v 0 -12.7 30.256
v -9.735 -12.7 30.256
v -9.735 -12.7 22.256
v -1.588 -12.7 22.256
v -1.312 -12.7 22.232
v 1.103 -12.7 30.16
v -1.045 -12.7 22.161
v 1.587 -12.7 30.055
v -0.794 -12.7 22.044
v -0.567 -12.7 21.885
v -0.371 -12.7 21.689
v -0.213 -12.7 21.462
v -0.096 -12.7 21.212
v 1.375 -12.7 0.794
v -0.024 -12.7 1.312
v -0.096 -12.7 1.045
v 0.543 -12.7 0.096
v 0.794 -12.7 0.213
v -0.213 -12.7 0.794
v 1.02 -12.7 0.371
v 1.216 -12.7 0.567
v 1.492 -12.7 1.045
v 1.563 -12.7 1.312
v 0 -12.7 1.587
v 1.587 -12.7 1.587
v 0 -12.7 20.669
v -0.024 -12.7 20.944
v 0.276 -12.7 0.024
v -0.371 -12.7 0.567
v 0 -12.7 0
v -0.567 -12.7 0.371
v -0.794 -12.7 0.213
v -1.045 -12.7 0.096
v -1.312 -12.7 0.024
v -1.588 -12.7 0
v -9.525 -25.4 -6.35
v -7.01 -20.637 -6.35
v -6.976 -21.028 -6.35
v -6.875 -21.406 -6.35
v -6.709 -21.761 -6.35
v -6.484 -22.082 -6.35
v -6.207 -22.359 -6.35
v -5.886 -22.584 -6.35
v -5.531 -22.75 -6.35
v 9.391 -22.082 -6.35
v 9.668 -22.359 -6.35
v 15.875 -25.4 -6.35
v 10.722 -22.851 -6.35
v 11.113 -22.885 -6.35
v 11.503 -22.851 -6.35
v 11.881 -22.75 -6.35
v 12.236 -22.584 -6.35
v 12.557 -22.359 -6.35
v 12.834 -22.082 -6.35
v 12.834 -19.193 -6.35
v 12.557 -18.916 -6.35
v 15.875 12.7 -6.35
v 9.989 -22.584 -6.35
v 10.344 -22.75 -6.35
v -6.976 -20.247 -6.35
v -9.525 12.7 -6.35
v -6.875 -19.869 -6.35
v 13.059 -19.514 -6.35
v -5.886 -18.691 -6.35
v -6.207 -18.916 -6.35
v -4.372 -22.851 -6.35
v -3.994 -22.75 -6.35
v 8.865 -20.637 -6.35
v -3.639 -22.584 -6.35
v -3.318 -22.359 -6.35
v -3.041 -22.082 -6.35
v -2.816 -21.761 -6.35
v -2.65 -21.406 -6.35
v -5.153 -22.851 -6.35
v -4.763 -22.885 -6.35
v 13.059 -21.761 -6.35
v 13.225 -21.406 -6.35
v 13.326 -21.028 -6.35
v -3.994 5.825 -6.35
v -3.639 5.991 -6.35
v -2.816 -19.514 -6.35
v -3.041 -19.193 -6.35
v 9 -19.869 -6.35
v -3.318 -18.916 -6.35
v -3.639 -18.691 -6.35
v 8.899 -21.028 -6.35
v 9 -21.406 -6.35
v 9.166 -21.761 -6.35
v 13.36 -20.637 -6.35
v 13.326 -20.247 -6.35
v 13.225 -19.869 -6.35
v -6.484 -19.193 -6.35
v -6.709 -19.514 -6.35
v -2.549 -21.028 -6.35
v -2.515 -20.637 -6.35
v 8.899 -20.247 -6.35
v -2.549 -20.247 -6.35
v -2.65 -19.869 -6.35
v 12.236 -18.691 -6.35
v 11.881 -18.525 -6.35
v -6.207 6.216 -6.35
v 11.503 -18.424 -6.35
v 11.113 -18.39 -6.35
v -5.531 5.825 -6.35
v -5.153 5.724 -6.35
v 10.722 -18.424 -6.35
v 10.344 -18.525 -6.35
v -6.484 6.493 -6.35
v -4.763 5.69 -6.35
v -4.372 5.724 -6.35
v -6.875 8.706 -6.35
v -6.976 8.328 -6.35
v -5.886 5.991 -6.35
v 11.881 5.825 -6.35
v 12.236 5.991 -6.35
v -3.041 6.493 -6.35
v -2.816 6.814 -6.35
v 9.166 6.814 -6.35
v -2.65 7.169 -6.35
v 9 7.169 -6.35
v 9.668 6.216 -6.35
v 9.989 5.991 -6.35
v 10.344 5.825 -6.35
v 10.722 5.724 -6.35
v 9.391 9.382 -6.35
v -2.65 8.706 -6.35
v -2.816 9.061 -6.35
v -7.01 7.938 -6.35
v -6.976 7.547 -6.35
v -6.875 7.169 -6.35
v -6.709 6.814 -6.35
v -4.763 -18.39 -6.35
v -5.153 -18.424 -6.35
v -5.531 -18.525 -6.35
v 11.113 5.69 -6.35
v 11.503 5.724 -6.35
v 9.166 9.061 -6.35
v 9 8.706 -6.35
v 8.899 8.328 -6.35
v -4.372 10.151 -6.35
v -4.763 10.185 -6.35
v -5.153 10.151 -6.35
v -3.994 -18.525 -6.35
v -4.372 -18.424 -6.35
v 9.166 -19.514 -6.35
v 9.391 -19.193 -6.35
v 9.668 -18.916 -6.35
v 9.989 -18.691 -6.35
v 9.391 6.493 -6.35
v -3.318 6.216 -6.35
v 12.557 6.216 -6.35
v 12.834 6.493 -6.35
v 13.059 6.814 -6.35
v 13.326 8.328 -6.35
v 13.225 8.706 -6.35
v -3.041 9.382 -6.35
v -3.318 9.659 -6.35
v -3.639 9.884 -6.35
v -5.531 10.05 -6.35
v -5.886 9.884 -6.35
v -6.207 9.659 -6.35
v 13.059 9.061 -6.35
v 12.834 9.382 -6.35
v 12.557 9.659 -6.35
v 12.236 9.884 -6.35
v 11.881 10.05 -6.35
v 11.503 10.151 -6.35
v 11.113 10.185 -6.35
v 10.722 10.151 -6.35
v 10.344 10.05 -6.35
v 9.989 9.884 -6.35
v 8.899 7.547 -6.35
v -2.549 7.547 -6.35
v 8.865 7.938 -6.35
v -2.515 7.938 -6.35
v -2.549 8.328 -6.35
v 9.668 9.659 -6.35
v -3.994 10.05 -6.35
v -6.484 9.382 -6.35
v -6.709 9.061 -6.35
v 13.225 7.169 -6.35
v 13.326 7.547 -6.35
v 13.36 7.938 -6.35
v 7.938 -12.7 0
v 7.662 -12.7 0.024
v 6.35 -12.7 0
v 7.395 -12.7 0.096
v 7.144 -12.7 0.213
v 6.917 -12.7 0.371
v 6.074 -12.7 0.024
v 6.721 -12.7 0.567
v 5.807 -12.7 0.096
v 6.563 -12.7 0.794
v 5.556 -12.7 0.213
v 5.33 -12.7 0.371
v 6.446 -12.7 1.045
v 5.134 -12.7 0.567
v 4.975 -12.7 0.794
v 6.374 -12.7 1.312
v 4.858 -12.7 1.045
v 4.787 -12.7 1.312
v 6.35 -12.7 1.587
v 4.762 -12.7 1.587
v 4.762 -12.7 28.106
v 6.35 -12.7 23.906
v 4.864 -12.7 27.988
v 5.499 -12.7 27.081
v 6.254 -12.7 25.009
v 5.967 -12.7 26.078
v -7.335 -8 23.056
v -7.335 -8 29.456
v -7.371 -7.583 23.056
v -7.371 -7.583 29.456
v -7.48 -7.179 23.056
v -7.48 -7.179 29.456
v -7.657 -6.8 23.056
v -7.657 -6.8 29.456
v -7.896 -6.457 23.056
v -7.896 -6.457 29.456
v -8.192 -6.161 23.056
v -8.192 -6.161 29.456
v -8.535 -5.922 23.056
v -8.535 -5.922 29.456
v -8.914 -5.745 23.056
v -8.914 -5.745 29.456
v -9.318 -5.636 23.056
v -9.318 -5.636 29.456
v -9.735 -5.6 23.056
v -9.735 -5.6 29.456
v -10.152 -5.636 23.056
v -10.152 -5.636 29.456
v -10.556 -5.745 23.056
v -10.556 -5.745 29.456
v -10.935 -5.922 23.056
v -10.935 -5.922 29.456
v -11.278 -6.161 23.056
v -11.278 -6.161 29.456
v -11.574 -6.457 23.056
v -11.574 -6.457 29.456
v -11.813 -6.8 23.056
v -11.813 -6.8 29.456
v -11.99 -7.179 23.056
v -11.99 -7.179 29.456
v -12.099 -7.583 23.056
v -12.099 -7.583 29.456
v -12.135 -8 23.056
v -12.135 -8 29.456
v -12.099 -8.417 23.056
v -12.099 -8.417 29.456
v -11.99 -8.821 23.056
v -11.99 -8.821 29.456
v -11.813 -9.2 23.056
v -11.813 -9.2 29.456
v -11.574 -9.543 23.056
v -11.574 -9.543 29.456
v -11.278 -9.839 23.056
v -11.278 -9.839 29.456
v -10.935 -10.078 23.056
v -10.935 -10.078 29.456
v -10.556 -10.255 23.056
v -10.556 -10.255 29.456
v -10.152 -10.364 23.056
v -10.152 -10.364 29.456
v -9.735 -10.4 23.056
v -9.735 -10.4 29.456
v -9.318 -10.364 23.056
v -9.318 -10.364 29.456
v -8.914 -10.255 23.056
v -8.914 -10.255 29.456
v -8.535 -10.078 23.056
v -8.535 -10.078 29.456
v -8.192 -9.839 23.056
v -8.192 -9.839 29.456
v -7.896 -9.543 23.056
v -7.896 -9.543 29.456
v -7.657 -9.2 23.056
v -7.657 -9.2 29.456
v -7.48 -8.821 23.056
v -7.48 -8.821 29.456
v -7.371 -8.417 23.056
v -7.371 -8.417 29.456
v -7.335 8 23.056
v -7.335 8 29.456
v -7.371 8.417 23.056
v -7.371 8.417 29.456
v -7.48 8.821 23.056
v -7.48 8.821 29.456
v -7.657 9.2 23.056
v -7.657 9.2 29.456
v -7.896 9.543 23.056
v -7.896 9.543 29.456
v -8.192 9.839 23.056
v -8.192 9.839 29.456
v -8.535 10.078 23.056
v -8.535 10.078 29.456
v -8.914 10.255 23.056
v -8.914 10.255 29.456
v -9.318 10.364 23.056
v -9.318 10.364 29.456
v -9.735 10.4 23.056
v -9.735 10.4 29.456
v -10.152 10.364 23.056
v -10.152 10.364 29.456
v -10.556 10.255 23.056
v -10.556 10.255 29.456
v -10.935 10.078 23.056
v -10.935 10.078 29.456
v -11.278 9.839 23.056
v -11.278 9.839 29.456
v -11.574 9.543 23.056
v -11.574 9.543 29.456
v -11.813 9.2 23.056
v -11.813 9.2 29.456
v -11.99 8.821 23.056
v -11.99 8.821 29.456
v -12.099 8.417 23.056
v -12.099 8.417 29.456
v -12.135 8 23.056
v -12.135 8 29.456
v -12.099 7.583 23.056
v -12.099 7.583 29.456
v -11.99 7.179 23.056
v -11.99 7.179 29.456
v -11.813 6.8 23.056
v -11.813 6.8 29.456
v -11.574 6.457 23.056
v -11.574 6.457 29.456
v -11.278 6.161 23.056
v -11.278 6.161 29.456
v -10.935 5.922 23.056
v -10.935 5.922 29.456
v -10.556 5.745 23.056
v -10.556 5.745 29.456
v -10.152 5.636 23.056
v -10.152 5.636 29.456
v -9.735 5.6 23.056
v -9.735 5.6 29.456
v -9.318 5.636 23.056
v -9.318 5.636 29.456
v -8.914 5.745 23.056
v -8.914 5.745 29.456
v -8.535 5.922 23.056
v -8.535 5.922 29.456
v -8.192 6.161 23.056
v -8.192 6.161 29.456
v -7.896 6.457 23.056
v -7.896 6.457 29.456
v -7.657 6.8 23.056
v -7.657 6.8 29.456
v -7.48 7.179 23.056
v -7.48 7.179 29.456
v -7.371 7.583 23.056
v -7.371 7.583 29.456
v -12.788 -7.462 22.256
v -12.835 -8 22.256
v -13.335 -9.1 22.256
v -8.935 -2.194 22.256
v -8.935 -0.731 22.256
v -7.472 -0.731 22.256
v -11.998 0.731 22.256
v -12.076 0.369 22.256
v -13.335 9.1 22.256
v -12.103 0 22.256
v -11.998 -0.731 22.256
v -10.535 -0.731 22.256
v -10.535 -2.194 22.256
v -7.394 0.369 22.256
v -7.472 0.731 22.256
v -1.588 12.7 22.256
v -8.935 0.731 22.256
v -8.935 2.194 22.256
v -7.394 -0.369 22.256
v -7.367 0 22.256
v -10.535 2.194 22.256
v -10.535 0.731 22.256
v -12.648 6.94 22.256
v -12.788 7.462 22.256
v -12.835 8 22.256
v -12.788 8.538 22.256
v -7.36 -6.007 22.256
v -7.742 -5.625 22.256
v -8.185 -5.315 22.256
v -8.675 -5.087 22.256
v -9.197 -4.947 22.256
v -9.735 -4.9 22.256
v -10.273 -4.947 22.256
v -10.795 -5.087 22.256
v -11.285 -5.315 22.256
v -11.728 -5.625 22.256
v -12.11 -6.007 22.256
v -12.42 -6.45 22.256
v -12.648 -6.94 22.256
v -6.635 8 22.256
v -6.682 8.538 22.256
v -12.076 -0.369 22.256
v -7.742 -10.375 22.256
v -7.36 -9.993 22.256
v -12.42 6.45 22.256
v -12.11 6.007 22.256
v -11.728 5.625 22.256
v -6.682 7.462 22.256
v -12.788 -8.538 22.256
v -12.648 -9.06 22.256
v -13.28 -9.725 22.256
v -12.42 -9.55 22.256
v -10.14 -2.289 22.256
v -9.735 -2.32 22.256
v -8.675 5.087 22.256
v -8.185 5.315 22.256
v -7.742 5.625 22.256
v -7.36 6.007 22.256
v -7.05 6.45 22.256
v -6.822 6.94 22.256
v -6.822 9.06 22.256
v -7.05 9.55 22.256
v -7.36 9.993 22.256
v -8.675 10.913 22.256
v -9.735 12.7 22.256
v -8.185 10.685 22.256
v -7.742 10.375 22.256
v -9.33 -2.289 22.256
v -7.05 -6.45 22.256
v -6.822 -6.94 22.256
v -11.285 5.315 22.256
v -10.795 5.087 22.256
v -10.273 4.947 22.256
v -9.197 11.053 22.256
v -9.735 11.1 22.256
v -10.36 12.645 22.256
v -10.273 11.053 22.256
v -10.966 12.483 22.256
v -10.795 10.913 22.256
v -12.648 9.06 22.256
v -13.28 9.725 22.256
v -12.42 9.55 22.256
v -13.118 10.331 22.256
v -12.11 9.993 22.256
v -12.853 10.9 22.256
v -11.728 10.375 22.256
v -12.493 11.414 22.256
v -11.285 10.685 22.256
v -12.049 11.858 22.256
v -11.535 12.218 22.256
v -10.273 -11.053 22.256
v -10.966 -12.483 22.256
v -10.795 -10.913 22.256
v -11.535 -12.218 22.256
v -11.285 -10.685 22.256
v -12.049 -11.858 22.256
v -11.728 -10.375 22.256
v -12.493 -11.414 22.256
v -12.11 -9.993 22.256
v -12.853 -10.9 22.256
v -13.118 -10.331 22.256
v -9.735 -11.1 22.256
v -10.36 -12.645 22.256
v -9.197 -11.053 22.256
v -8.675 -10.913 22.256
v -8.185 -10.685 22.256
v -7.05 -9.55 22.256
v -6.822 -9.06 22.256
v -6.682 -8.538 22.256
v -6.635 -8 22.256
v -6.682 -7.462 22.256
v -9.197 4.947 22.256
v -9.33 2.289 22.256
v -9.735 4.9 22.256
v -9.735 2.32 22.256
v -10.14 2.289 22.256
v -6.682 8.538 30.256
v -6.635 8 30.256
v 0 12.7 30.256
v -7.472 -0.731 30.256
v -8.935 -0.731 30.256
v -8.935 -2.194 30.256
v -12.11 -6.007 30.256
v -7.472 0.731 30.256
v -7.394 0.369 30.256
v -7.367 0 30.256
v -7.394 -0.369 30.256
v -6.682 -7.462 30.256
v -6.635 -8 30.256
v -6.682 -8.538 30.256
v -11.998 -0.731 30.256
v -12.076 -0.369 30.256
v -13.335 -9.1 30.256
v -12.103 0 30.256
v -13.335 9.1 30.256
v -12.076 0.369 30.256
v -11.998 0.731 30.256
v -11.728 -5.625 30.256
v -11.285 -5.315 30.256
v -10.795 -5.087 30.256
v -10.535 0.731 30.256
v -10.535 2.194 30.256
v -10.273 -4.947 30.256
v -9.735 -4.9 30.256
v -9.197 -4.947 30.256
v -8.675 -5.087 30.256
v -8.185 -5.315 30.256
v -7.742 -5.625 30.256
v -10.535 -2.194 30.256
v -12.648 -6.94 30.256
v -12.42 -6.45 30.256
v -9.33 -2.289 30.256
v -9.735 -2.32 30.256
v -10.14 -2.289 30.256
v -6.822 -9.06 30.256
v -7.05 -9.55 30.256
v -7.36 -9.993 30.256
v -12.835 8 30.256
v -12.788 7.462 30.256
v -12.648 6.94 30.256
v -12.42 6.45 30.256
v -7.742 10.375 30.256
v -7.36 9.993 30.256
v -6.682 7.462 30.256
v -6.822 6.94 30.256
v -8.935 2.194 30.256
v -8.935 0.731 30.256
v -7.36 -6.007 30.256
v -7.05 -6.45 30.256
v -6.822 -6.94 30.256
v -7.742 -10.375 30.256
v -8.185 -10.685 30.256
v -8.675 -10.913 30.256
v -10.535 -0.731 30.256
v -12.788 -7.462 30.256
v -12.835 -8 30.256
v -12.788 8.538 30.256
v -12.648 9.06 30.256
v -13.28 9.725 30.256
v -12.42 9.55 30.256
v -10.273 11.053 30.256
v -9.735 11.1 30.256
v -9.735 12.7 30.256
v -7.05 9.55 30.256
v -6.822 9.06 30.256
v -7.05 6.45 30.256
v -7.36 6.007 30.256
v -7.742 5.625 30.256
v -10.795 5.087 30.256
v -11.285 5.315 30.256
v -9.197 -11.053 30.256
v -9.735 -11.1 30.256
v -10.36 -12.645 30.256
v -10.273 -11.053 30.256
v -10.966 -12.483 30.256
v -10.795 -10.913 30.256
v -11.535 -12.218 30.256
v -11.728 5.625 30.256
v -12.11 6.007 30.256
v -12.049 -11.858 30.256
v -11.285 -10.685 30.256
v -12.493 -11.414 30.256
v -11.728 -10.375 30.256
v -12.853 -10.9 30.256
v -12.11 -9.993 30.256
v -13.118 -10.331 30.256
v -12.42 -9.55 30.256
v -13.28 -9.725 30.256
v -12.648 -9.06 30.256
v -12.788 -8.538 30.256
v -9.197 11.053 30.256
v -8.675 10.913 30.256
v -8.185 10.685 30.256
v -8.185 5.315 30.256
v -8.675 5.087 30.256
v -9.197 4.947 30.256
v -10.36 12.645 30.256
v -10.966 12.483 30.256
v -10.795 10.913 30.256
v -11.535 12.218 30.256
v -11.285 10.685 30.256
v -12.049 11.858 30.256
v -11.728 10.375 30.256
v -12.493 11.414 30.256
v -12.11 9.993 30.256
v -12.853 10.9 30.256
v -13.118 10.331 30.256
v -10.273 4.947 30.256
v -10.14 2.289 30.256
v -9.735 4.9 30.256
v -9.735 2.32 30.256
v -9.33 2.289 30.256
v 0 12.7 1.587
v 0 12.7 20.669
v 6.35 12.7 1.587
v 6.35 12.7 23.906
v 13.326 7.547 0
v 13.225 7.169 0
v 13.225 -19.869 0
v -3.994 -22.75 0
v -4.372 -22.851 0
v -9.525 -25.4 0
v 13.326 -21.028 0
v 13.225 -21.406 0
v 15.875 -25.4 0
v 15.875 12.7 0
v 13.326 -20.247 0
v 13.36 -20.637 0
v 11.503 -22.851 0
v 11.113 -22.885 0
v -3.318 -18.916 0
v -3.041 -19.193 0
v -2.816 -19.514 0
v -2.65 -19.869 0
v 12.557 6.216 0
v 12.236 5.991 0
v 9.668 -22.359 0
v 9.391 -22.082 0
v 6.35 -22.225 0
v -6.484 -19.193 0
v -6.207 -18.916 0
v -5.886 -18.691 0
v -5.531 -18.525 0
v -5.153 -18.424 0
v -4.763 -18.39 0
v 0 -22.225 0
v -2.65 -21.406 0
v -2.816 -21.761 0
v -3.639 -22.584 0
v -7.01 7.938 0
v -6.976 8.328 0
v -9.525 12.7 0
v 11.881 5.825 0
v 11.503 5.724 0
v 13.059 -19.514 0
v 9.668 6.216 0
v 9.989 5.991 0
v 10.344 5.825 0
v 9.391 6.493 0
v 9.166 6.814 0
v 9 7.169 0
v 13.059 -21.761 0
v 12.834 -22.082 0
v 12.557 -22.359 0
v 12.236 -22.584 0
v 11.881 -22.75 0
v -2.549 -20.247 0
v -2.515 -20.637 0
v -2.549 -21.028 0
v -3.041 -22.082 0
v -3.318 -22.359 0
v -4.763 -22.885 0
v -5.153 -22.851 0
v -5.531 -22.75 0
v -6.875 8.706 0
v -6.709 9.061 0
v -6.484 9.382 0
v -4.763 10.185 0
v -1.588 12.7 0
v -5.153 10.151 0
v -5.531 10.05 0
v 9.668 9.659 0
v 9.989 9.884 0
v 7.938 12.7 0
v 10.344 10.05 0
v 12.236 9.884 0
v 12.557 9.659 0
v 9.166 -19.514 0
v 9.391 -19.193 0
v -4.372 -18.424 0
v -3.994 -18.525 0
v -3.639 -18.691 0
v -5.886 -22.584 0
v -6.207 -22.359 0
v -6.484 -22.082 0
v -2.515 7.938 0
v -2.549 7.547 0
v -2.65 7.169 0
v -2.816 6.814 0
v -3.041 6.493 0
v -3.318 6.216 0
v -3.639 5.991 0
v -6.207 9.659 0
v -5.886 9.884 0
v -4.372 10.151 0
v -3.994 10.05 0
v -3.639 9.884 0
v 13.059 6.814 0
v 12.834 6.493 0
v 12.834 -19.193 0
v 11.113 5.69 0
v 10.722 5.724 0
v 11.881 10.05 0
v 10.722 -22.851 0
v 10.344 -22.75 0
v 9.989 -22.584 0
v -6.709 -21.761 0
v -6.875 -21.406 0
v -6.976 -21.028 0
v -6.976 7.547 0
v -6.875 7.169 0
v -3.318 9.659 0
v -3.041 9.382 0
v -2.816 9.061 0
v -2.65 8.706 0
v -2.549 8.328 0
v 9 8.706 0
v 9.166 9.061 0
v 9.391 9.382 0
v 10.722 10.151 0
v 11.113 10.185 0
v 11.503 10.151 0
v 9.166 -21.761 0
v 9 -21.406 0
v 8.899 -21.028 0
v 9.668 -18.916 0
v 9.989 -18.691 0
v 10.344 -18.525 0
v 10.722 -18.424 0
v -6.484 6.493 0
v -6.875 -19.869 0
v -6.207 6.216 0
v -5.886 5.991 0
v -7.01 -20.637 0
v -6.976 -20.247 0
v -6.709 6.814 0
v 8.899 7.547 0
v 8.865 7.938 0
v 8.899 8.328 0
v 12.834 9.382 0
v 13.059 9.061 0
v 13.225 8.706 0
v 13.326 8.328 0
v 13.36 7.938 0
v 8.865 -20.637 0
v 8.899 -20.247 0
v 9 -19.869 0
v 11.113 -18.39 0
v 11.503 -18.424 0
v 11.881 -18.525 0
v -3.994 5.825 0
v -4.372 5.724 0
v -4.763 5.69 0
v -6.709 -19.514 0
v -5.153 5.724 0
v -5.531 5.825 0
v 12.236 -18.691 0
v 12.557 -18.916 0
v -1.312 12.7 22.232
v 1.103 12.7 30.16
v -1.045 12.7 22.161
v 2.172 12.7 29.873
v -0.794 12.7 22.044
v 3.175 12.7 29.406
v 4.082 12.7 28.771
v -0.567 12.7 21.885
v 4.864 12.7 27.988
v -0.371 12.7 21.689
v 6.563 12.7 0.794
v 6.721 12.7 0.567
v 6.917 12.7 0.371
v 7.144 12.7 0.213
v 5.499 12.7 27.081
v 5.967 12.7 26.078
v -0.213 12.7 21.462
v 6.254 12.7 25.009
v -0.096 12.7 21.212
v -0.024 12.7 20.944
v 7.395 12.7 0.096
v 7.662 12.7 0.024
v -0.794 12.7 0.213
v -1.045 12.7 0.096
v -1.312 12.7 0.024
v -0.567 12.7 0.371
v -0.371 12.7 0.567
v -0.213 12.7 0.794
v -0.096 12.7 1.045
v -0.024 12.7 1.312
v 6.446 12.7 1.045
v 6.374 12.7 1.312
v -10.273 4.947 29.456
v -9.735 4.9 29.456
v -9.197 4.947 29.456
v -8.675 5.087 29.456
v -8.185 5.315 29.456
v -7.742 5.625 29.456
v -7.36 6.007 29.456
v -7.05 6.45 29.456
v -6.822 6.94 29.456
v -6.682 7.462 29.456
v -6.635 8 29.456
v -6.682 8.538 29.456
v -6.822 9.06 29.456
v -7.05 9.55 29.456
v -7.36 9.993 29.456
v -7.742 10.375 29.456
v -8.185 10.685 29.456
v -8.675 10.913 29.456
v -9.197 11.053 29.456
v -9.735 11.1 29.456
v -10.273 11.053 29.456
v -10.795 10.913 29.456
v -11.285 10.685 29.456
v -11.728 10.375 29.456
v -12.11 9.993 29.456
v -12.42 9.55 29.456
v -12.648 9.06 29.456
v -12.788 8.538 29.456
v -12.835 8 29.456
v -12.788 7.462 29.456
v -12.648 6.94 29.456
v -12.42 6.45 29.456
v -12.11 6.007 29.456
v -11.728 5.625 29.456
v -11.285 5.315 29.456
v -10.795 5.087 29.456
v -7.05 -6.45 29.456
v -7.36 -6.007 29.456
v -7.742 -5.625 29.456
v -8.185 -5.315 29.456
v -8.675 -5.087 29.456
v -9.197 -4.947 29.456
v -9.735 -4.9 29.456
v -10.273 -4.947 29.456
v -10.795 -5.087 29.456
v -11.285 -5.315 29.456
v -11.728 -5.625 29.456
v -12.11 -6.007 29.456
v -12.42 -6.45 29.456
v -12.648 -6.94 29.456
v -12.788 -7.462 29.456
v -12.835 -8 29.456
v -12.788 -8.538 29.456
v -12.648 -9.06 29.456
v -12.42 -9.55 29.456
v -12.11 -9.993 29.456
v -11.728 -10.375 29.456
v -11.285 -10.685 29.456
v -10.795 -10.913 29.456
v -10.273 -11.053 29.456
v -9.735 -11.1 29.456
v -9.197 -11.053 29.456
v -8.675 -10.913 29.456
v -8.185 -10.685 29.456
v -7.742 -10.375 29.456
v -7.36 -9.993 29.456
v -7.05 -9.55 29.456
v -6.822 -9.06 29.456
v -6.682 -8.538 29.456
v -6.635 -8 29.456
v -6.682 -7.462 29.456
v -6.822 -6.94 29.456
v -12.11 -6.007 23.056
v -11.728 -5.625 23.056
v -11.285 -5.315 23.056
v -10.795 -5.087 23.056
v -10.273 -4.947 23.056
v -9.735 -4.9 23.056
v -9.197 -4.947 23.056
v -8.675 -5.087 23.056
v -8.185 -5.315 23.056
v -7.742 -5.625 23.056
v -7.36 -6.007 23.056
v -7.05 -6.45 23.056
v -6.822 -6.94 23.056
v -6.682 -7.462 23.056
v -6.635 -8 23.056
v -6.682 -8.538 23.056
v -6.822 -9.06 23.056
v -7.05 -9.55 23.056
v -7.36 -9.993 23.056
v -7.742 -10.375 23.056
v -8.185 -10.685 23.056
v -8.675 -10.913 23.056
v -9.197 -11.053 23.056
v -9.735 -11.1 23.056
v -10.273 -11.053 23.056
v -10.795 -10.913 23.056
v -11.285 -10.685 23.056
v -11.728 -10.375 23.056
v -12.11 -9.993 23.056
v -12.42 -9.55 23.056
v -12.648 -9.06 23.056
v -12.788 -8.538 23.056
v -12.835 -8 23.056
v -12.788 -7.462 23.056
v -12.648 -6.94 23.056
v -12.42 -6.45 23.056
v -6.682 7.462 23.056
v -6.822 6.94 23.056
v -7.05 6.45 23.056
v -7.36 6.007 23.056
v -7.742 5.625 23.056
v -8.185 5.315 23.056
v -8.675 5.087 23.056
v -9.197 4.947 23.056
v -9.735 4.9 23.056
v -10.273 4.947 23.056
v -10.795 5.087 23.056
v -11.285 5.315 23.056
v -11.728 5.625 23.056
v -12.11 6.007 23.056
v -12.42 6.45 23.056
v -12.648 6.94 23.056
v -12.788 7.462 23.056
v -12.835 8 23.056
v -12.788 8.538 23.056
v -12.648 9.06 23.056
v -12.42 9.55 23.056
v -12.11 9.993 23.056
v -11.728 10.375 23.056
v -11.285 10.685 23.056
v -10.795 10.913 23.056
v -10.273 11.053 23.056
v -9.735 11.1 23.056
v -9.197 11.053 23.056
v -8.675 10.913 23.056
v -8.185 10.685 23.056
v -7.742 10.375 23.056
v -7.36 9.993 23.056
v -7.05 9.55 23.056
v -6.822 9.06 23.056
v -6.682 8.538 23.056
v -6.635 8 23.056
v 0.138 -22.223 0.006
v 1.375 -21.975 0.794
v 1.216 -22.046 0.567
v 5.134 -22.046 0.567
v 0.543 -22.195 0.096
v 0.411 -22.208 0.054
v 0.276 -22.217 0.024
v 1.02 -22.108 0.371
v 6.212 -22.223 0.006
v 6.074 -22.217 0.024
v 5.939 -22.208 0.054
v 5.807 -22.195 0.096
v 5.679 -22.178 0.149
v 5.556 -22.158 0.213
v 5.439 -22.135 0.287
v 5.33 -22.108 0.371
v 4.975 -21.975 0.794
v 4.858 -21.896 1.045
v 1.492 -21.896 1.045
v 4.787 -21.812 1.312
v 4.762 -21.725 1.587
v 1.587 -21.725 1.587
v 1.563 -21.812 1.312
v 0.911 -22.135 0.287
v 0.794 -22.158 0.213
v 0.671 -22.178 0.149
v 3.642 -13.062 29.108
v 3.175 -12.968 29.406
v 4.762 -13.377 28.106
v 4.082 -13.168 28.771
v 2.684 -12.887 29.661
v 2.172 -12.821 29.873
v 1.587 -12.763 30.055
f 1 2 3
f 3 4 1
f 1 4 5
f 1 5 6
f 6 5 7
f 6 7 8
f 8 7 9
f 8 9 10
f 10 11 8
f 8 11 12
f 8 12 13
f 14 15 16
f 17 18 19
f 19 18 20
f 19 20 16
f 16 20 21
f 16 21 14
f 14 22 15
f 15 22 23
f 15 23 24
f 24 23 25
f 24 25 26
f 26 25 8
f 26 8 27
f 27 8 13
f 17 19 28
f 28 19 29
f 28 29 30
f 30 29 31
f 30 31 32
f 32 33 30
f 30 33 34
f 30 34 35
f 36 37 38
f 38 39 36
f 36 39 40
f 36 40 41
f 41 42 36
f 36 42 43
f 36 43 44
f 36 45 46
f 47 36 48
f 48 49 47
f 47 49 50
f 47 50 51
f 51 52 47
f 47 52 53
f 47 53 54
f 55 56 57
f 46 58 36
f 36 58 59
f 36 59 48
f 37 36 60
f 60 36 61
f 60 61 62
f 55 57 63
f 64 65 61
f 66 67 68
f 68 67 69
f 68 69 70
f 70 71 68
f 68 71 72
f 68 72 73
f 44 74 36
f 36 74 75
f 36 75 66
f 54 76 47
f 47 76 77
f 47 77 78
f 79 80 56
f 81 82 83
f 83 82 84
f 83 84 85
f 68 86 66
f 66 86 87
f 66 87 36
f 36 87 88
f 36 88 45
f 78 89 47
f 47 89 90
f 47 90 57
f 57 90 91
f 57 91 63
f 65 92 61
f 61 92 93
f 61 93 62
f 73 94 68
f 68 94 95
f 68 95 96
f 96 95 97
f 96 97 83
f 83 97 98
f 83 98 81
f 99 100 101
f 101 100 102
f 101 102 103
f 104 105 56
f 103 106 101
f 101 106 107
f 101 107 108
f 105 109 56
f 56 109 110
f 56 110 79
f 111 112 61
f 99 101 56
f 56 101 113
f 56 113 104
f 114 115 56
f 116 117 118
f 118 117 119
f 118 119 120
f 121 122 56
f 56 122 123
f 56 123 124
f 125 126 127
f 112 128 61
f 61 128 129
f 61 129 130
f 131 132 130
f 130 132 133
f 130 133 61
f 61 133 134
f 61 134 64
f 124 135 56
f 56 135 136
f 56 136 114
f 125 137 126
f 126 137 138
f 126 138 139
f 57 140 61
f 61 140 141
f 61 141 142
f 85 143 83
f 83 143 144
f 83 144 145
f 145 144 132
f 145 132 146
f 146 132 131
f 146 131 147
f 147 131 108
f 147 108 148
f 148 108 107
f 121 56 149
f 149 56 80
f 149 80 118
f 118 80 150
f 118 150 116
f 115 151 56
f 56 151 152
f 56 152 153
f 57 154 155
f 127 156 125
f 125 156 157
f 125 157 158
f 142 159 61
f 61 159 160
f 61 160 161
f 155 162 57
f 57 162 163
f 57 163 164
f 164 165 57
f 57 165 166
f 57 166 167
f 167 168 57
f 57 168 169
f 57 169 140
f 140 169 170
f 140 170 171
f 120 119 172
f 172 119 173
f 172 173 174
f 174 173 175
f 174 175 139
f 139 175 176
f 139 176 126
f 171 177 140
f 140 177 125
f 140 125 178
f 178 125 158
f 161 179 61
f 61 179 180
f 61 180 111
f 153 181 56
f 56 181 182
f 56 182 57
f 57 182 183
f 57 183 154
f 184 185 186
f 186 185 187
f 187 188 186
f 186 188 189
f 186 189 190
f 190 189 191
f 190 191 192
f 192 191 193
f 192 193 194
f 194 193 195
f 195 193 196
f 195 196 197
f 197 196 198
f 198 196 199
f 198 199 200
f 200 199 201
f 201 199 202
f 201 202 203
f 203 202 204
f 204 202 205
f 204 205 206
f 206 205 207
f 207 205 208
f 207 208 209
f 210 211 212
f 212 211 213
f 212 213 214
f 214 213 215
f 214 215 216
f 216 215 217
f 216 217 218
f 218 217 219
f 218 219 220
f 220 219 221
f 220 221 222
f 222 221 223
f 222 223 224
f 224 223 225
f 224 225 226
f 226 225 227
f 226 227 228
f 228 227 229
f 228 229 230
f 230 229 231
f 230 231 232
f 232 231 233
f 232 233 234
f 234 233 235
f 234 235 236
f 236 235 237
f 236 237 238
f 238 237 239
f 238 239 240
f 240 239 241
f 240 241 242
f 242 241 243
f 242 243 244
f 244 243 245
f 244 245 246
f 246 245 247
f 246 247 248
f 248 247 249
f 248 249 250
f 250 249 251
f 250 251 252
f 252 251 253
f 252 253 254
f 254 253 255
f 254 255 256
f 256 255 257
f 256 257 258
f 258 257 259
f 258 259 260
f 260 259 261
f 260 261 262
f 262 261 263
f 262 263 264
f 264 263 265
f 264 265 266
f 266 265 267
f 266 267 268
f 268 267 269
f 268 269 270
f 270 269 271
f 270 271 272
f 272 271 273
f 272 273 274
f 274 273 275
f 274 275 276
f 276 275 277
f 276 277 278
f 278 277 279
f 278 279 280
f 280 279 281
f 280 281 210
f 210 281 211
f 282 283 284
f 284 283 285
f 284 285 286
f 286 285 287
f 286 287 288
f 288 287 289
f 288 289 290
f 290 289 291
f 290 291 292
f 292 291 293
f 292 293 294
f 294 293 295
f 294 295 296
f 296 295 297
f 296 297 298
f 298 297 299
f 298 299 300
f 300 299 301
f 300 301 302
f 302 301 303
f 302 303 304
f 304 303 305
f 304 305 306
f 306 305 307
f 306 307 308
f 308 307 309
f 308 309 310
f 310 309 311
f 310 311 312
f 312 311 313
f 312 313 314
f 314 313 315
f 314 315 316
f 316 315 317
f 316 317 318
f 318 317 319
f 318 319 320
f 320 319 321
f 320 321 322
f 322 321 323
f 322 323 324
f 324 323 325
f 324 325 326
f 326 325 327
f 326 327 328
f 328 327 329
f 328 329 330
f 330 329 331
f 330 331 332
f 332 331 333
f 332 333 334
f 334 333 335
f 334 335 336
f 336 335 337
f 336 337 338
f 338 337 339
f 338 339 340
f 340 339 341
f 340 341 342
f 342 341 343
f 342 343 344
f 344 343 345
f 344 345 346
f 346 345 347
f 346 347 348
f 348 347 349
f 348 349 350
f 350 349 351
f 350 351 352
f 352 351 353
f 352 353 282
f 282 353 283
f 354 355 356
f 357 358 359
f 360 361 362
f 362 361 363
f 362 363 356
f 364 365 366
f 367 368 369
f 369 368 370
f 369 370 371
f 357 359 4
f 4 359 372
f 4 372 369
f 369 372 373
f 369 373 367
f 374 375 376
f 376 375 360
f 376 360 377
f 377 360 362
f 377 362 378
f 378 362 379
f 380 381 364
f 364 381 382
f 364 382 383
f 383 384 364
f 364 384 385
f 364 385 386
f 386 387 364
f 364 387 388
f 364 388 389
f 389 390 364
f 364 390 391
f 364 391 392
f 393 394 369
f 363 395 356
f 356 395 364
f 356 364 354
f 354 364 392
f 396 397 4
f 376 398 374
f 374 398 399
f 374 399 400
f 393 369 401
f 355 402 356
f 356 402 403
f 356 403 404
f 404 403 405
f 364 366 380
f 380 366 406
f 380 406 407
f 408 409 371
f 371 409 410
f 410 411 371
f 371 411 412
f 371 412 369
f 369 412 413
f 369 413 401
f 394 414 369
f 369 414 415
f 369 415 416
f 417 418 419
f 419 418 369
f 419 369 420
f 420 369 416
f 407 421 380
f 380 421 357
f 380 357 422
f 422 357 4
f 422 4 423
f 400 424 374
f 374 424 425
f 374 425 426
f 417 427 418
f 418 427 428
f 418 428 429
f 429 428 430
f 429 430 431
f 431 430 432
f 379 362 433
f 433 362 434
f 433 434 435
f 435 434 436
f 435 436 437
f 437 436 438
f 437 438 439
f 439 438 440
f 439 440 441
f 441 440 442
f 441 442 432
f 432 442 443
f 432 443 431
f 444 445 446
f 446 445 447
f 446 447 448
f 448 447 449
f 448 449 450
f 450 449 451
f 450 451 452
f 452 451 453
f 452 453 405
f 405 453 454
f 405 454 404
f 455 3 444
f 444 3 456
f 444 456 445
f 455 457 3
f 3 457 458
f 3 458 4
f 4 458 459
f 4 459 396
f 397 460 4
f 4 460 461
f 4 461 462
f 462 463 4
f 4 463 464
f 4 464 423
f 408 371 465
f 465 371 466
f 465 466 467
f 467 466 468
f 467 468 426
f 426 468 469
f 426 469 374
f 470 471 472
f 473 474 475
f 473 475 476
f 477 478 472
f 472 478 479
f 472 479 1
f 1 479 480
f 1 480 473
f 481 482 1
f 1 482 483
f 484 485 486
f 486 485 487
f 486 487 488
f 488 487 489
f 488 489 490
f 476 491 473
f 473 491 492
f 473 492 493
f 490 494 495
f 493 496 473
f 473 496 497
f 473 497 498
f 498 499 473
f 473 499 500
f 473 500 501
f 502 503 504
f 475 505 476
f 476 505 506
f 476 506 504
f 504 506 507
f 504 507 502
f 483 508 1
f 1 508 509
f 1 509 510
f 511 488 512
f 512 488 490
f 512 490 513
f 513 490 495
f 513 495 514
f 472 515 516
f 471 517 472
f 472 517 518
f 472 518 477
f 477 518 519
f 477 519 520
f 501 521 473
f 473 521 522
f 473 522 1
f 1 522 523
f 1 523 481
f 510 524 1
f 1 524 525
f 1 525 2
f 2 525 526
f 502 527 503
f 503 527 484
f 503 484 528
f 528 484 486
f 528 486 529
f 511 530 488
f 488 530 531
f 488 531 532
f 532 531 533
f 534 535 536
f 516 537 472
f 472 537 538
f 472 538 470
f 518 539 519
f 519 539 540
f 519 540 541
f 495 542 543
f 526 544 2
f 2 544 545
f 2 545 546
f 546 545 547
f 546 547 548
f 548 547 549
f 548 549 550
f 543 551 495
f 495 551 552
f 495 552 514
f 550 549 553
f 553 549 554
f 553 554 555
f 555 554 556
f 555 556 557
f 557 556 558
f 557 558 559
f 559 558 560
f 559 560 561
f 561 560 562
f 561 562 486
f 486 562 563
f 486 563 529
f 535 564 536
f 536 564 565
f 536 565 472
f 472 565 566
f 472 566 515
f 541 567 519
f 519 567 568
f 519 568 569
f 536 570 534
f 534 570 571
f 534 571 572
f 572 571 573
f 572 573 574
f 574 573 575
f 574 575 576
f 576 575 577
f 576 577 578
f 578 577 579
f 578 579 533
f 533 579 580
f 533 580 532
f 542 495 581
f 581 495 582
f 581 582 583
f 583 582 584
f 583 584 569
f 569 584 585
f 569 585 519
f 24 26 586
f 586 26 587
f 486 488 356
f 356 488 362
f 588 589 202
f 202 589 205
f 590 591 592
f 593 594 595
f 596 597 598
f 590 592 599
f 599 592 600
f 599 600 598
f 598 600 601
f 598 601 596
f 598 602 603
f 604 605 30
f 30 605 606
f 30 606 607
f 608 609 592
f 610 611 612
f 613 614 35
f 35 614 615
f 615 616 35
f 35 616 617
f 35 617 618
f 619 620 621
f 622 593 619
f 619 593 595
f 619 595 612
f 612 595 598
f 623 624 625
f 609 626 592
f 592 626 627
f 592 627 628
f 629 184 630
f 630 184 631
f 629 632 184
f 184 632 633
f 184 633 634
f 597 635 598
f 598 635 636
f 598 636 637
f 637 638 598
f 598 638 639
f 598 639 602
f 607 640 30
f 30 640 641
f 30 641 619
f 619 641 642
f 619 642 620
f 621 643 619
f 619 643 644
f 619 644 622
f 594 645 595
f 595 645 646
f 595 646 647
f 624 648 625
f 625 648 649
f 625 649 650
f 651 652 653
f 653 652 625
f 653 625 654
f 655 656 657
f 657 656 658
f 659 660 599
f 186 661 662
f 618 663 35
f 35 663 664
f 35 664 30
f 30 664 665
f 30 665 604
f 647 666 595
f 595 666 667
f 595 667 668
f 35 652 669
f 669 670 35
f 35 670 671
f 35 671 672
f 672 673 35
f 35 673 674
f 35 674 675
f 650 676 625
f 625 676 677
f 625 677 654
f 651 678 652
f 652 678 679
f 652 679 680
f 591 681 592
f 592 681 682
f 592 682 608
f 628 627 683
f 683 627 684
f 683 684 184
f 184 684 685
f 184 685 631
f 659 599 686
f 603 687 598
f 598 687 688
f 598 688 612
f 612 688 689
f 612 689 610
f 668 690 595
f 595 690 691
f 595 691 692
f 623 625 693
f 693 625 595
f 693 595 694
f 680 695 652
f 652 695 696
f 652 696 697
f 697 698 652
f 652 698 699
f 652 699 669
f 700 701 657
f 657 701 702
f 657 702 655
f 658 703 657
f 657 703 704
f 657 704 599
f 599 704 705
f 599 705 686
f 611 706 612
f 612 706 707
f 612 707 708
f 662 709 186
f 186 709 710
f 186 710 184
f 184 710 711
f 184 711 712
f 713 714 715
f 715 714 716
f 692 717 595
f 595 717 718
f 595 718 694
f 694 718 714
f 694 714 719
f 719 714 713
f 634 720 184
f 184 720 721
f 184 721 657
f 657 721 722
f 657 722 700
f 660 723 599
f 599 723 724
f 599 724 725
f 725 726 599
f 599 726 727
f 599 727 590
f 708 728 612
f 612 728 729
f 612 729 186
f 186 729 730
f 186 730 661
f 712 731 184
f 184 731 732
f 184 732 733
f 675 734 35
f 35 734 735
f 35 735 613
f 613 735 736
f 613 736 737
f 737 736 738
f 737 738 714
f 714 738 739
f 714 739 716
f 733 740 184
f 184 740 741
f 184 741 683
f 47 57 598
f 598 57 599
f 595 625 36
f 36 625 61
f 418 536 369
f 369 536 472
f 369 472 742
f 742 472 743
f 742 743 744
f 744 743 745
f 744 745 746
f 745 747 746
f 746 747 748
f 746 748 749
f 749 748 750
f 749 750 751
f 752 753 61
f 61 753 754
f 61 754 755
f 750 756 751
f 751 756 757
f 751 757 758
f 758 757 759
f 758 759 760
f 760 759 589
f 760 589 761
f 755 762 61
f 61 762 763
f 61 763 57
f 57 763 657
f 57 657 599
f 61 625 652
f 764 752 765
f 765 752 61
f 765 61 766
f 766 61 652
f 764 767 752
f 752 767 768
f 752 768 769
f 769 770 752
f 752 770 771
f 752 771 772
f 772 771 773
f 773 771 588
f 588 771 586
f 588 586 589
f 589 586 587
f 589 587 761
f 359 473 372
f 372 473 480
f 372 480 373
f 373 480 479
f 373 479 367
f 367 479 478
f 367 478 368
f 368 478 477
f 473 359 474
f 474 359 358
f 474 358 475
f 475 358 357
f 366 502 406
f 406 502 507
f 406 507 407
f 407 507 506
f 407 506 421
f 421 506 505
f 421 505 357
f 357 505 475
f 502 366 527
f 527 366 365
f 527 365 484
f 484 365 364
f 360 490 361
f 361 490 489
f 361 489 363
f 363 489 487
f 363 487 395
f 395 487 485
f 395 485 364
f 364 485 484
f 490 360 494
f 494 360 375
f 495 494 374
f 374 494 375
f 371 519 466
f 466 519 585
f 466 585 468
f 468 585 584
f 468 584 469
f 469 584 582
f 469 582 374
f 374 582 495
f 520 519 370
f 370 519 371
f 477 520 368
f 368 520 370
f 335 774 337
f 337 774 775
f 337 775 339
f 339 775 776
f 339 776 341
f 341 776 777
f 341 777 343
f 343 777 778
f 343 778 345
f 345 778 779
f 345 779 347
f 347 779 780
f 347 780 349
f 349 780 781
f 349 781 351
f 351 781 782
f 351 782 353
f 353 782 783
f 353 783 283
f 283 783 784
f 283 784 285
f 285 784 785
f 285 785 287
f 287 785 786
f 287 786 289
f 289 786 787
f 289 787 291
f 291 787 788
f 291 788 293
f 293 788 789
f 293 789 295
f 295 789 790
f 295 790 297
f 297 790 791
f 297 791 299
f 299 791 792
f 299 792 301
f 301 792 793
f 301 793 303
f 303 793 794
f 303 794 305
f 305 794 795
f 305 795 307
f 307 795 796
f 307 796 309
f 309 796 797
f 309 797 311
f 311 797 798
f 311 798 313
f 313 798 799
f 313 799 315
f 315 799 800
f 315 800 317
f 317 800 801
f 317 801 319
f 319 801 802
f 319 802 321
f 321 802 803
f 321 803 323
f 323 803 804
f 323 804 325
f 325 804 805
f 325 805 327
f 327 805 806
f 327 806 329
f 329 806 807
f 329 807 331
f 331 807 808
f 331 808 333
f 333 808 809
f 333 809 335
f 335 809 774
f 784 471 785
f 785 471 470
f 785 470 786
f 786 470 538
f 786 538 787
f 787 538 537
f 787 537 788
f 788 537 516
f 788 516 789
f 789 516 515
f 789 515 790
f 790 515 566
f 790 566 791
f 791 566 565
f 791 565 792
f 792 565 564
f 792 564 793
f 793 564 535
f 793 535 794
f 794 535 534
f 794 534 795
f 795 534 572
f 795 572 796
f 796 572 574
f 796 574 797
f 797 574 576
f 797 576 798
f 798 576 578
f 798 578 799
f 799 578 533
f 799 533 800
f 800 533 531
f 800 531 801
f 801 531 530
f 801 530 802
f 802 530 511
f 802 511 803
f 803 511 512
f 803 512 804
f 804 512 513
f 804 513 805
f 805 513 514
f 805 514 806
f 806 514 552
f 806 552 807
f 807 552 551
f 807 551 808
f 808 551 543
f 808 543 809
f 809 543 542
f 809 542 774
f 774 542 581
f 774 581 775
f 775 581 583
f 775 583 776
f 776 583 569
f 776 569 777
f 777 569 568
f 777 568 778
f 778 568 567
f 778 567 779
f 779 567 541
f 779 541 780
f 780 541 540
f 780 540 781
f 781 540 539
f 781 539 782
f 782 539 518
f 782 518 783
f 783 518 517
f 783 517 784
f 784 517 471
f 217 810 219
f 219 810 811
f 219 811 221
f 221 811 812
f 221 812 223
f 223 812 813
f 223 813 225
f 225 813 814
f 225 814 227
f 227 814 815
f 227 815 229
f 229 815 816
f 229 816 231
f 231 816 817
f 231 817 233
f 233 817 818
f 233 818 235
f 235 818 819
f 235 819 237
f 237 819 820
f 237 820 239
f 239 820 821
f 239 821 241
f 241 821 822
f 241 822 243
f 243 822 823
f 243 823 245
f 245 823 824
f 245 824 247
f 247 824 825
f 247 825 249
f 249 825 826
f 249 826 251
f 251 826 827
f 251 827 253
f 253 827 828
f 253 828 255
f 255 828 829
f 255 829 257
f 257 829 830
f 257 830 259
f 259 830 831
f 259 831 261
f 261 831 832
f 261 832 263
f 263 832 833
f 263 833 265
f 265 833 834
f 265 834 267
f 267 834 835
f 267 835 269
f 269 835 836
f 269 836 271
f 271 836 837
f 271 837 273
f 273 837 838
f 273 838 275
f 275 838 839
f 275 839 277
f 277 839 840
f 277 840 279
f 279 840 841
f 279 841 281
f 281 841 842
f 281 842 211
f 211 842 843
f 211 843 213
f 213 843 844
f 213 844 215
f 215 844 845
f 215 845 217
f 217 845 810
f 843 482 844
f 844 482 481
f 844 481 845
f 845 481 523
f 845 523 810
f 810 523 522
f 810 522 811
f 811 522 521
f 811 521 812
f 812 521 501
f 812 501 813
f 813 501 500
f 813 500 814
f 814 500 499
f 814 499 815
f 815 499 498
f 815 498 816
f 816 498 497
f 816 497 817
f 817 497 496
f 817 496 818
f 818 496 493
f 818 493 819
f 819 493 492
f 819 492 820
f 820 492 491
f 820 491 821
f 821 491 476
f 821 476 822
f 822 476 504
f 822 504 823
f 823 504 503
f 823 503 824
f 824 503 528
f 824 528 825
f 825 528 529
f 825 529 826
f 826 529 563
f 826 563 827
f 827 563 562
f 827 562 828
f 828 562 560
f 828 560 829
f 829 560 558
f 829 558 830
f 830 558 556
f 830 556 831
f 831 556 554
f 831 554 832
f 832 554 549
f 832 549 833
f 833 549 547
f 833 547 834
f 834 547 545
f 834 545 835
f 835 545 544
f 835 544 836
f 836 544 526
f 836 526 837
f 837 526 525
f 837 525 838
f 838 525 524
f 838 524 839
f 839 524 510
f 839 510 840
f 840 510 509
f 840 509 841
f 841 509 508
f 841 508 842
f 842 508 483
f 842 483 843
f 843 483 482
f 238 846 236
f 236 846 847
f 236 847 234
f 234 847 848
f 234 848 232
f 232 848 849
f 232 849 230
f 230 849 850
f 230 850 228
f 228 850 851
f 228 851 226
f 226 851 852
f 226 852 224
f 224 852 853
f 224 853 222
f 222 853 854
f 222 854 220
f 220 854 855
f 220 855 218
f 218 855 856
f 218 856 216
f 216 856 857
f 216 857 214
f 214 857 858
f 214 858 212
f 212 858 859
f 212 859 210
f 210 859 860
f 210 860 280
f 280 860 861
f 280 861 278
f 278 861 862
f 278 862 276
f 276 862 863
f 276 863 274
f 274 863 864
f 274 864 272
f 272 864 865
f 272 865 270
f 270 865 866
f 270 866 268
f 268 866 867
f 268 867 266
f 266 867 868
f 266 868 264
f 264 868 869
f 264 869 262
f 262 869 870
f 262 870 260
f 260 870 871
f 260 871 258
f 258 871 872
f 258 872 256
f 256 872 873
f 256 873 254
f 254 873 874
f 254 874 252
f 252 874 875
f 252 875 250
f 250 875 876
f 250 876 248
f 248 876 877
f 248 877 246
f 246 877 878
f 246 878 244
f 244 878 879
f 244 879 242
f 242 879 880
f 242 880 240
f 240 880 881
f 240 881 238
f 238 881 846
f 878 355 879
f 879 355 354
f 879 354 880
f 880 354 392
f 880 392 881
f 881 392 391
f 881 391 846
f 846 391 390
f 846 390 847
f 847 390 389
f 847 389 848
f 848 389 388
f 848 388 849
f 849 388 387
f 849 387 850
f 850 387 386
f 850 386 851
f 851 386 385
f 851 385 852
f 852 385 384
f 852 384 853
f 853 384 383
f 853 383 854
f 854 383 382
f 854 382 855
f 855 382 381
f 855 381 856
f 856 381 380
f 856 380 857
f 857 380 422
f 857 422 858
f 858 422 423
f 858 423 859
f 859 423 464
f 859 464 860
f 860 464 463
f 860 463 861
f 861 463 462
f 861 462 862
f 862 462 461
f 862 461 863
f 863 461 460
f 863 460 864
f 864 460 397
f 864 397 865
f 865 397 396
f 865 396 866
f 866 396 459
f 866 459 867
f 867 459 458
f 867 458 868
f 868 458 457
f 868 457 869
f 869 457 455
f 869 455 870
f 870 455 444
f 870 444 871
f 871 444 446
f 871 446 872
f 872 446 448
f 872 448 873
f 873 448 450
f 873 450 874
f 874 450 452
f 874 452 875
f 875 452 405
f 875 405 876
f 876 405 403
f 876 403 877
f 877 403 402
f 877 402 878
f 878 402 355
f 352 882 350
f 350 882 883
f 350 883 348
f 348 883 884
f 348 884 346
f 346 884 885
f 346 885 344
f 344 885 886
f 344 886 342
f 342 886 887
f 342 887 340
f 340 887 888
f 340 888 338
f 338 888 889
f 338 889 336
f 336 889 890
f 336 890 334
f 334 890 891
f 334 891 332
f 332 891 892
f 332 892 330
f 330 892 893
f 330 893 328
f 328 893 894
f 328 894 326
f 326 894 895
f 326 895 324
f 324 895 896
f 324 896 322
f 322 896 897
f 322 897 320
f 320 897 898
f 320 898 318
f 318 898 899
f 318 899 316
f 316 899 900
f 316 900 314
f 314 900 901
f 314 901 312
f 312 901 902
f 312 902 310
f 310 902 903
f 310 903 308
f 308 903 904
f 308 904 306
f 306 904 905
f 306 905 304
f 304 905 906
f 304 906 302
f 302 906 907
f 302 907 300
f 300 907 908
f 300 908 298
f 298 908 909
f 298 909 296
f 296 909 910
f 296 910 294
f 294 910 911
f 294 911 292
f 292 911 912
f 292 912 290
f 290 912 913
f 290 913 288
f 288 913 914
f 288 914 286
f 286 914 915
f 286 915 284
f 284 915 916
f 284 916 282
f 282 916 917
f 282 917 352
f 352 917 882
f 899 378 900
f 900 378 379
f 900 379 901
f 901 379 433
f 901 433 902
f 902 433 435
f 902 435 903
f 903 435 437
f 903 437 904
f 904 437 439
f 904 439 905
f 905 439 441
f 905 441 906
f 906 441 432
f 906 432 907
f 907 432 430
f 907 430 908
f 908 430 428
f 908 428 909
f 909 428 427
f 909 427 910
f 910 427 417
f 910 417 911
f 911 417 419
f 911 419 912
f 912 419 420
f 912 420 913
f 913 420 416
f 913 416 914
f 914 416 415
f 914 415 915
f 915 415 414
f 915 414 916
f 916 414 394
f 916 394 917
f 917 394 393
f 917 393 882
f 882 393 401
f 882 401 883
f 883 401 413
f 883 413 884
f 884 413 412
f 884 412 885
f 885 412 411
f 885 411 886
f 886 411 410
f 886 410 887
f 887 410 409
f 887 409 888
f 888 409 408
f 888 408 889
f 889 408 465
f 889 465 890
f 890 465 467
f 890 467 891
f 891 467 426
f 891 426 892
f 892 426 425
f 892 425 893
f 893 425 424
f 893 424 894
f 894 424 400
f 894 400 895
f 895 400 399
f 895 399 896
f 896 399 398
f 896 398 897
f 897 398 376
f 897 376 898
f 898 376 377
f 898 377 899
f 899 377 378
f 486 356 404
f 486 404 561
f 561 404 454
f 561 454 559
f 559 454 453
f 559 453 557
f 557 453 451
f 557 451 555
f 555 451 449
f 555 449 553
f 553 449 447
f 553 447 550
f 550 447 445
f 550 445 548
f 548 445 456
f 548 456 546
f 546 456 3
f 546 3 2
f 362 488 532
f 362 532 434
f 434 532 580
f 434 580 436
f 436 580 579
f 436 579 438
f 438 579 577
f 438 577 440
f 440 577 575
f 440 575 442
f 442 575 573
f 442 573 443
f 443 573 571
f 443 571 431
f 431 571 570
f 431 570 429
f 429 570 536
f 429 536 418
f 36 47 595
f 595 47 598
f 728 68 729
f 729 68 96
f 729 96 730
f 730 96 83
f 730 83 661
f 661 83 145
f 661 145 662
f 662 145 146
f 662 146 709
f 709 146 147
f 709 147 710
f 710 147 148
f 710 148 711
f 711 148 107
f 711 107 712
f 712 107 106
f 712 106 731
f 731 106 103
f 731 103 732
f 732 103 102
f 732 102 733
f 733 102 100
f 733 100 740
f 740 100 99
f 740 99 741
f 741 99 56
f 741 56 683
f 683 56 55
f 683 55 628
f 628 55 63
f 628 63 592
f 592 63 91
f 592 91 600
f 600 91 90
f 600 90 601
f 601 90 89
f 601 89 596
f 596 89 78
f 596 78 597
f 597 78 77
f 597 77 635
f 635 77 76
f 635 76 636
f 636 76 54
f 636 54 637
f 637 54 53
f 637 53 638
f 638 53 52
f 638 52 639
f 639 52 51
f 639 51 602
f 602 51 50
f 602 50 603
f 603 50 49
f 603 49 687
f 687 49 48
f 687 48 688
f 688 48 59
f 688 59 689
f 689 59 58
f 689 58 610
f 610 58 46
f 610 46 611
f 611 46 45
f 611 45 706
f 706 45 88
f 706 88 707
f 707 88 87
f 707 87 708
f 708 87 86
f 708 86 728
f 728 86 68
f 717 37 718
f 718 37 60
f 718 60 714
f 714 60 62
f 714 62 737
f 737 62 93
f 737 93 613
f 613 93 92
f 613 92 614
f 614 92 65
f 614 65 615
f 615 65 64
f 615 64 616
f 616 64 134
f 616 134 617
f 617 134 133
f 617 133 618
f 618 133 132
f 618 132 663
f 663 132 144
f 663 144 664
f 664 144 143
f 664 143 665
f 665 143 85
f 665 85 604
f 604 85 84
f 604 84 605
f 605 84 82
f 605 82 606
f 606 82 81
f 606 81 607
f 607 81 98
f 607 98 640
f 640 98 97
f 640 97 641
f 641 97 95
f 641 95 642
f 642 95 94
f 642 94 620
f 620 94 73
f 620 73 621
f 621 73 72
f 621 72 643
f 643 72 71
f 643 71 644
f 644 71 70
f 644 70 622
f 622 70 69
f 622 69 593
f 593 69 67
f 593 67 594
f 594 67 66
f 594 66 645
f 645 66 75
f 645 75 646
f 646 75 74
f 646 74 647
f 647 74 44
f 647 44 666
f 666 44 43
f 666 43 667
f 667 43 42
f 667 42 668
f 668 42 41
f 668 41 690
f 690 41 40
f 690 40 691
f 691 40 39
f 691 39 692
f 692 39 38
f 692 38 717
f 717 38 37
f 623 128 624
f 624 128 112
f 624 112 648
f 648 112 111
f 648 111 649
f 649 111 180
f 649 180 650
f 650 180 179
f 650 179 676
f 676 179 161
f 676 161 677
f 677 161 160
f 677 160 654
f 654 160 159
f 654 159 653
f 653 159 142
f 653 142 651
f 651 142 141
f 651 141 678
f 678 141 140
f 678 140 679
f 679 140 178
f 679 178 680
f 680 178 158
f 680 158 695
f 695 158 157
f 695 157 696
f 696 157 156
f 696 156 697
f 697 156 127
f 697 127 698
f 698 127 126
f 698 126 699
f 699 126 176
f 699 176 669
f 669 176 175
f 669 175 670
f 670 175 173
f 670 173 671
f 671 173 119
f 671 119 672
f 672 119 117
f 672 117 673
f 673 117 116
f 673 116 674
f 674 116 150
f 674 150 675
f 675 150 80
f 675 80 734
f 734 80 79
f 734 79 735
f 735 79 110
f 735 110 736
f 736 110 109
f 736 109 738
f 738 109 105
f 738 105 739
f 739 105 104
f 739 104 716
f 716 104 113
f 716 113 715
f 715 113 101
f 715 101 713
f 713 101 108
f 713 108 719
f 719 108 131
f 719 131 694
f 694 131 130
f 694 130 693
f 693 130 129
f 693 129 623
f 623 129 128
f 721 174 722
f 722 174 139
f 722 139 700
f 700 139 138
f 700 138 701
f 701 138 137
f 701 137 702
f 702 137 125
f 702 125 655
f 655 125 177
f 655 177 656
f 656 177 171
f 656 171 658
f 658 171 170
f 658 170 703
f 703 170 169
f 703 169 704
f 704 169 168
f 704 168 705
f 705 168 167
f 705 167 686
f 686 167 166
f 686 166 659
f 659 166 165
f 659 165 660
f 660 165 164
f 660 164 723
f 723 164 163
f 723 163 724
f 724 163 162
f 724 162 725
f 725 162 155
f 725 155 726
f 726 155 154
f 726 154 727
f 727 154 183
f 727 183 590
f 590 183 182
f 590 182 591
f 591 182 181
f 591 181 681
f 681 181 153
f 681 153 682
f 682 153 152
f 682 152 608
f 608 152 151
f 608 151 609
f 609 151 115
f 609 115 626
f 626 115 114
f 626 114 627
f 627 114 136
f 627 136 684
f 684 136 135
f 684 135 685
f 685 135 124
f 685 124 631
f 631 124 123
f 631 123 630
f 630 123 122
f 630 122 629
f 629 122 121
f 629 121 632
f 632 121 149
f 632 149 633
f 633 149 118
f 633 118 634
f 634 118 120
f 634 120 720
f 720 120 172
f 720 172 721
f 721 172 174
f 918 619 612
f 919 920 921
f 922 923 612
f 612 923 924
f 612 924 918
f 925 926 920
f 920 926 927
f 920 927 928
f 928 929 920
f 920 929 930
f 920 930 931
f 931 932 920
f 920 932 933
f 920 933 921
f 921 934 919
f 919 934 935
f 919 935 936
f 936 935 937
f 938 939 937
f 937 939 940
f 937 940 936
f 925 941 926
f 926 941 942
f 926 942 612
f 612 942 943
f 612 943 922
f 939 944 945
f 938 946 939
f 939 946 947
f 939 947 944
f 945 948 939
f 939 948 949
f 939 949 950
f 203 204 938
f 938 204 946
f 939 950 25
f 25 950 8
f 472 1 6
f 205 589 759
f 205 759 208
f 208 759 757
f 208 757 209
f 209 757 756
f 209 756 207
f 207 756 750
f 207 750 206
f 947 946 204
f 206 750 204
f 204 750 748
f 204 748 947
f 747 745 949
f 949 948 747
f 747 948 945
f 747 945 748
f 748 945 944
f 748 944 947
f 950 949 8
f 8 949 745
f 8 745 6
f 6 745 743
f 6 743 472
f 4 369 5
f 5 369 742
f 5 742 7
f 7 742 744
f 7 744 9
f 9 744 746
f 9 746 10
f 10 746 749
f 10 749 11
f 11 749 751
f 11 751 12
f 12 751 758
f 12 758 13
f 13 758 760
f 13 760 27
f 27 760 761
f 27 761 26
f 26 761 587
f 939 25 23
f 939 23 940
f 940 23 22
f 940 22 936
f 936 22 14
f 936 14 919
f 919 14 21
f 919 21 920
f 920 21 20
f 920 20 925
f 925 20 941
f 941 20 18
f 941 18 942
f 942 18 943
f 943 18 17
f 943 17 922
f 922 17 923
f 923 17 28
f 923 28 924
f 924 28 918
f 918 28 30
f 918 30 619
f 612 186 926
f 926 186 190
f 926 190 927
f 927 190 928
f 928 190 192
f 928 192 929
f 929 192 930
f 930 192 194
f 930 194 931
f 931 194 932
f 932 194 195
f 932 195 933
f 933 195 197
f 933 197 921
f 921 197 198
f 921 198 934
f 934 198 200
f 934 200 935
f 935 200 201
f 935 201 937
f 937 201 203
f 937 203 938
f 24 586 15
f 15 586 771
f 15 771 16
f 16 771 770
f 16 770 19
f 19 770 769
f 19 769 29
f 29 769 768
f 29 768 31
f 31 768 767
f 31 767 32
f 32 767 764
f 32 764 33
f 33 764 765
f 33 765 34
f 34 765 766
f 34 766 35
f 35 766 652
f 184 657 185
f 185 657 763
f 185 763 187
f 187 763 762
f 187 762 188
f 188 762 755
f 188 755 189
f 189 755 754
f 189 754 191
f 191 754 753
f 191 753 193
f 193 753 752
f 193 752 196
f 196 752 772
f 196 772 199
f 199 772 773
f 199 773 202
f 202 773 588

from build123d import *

# Parameters (mm, degrees)
BOSS_EXTRUDE1_DEPTH       = 12.7
SKETCH2_R                 = 2.4
CUT_EXTRUDE1_DEPTH        = 25.4
SKETCH2_3_R               = 3.1
CUT_EXTRUDE2_DEPTH        = 0.8
FILLET1_R                 = 3.6
SKETCH7_W                 = 25.4
SKETCH7_H                 = 38.1
BOSS_EXTRUDE2_DEPTH       = 6.35
F_8_CLEARANCE_HOLE1_D     = 4.4958
F_8_CLEARANCE_HOLE1_DEPTH = 6.35
BOSS_EXTRUDE3_DEPTH       = 1.5875
FILLET2_R                 = 6.35
FILLET3_R                 = 1.5875
FILLET4_R                 = 1.5875


# Some blends are built 0.0001 mm under size
with BuildPart() as part:
    # Sketch1 → Boss-Extrude1 (new, symmetric)
    with BuildSketch(Plane(origin=(0, 0, 0), x_dir=(1, 0, 0), z_dir=(0, 1, 0))):
        Polygon((0, 0), (0, -22.256250002), (-13.335, -22.256250002), (-13.335, -30.256250002), (6.35, -30.256250002), (6.35, 0), (15.875, 0), (15.875, 6.35), (-9.525, 6.35), (-9.525, 0), align=None)
    extrude(amount=BOSS_EXTRUDE1_DEPTH, both=True)

    # Sketch2 → Cut-Extrude1 (cut)
    with BuildSketch(Plane.XY.offset(30.256250002)):
        with BuildLine():
            ThreePointArc((-7.4722583, 0.73137085), (-7.367272665, 0), (-7.4722583, -0.73137085))
            Line((-7.4722583, -0.73137085), (-8.935, -0.73137085))
            Line((-8.935, -0.73137085), (-8.935, -2.19411255))
            ThreePointArc((-8.935, -2.19411255), (-9.735, -2.320249175), (-10.535, -2.19411255))
            Line((-10.535, -2.19411255), (-10.535, -0.73137085))
            Line((-10.535, -0.73137085), (-11.9977417, -0.73137085))
            ThreePointArc((-11.9977417, -0.73137085), (-12.102727335, 0), (-11.9977417, 0.73137085))
            Line((-11.9977417, 0.73137085), (-10.535, 0.73137085))
            Line((-10.535, 0.73137085), (-10.535, 2.19411255))
            ThreePointArc((-10.535, 2.19411255), (-9.735, 2.320249175), (-8.935, 2.19411255))
            Line((-8.935, 2.19411255), (-8.935, 0.73137085))
            Line((-8.935, 0.73137085), (-7.4722583, 0.73137085))
        make_face()
        with Locations((-9.735, -8)):
            Circle(SKETCH2_R)
        with Locations((-9.735, 8)):
            Circle(SKETCH2_R)
    extrude(amount=-CUT_EXTRUDE1_DEPTH, mode=Mode.SUBTRACT)

    # Sketch2<3> → Cut-Extrude2 (cut)
    with BuildSketch(Plane.XY.offset(30.256250002)):
        with Locations((-9.735, 8)):
            Circle(SKETCH2_3_R)
        with Locations((-9.735, -8)):
            Circle(SKETCH2_3_R)
    cut_extrude2 = extrude(amount=-CUT_EXTRUDE2_DEPTH, mode=Mode.SUBTRACT)

    # Mirror1: Cut-Extrude2 across plane
    add(cut_extrude2.mirror(Plane.XY.offset(26.256250002)), mode=Mode.SUBTRACT)

    # Fillet1
    fillet1_edges = [part.edges().sort_by_distance(p)[0] for p in [
        (-13.335, -12.7, 26.256250002),
        (-13.335, 12.7, 26.256250002),
    ]]
    fillet(fillet1_edges, radius=FILLET1_R)

    # Sketch7 → Boss-Extrude2 (add)
    with BuildSketch(Plane(origin=(0, 0, -6.35), x_dir=(-1, 0, 0), z_dir=(0, 0, -1))):
        with Locations((-3.175, -6.35)):
            Rectangle(SKETCH7_W, SKETCH7_H)
    extrude(amount=-BOSS_EXTRUDE2_DEPTH)

    # #8 Clearance Hole1
    with Locations(Plane(origin=(0, 0, -6.35), x_dir=(-1, 0, 0), z_dir=(0, 0, -1))):
        with Locations((-11.1125, 7.9375), (4.7625, 7.9375), (4.7625, -20.6375), (-11.1125, -20.6375)):
            Hole(F_8_CLEARANCE_HOLE1_D / 2, depth=F_8_CLEARANCE_HOLE1_DEPTH)

    # Sketch8 → Boss-Extrude3 (add, symmetric)
    with BuildSketch(Plane(origin=(3.175, 0, 0), x_dir=(0, 0, -1), z_dir=(1, 0, 0))):
        Polygon((0, -22.225), (-30.256250002, -12.7), (0, -12.7), align=None)
    extrude(amount=BOSS_EXTRUDE3_DEPTH, both=True)

    # Fillet2
    # the kernel refuses this fillet: 6.35 mm, written as the material it takes off along each edge
    with BuildSketch(Plane(origin=(6.35, -28.575, 30.256250002), x_dir=(-1, 0, 0), z_dir=(0, 1, 0))) as fillet2_piece_1:
        with BuildLine():
            CenterArc((FILLET2_R, -FILLET2_R), FILLET2_R, 90, 90)
            Line((0, -FILLET2_R), (0, 0))
            Line((0, 0), (FILLET2_R, 0))
        make_face()
    extrude(amount=57.15, mode=Mode.SUBTRACT)

    # Fillet3
    fillet3_edges = [part.edges().sort_by_distance(p)[0] for p in [
        (0, 0, 22.256250002),
    ]]
    fillet(fillet3_edges, radius=FILLET3_R)

    # Fillet4
    fillet4_edges = [part.edges().sort_by_distance(p)[0] for p in [
        (0, 0, 0),
        (6.35, 0, 0),
        (1.5875, -17.4625, 0),
        (4.7625, -17.4625, 0),
    ]]
    fillet(fillet4_edges, radius=FILLET4_R - 0.0001)  # a hair under: the kernel refuses the full size


solid = part.part
